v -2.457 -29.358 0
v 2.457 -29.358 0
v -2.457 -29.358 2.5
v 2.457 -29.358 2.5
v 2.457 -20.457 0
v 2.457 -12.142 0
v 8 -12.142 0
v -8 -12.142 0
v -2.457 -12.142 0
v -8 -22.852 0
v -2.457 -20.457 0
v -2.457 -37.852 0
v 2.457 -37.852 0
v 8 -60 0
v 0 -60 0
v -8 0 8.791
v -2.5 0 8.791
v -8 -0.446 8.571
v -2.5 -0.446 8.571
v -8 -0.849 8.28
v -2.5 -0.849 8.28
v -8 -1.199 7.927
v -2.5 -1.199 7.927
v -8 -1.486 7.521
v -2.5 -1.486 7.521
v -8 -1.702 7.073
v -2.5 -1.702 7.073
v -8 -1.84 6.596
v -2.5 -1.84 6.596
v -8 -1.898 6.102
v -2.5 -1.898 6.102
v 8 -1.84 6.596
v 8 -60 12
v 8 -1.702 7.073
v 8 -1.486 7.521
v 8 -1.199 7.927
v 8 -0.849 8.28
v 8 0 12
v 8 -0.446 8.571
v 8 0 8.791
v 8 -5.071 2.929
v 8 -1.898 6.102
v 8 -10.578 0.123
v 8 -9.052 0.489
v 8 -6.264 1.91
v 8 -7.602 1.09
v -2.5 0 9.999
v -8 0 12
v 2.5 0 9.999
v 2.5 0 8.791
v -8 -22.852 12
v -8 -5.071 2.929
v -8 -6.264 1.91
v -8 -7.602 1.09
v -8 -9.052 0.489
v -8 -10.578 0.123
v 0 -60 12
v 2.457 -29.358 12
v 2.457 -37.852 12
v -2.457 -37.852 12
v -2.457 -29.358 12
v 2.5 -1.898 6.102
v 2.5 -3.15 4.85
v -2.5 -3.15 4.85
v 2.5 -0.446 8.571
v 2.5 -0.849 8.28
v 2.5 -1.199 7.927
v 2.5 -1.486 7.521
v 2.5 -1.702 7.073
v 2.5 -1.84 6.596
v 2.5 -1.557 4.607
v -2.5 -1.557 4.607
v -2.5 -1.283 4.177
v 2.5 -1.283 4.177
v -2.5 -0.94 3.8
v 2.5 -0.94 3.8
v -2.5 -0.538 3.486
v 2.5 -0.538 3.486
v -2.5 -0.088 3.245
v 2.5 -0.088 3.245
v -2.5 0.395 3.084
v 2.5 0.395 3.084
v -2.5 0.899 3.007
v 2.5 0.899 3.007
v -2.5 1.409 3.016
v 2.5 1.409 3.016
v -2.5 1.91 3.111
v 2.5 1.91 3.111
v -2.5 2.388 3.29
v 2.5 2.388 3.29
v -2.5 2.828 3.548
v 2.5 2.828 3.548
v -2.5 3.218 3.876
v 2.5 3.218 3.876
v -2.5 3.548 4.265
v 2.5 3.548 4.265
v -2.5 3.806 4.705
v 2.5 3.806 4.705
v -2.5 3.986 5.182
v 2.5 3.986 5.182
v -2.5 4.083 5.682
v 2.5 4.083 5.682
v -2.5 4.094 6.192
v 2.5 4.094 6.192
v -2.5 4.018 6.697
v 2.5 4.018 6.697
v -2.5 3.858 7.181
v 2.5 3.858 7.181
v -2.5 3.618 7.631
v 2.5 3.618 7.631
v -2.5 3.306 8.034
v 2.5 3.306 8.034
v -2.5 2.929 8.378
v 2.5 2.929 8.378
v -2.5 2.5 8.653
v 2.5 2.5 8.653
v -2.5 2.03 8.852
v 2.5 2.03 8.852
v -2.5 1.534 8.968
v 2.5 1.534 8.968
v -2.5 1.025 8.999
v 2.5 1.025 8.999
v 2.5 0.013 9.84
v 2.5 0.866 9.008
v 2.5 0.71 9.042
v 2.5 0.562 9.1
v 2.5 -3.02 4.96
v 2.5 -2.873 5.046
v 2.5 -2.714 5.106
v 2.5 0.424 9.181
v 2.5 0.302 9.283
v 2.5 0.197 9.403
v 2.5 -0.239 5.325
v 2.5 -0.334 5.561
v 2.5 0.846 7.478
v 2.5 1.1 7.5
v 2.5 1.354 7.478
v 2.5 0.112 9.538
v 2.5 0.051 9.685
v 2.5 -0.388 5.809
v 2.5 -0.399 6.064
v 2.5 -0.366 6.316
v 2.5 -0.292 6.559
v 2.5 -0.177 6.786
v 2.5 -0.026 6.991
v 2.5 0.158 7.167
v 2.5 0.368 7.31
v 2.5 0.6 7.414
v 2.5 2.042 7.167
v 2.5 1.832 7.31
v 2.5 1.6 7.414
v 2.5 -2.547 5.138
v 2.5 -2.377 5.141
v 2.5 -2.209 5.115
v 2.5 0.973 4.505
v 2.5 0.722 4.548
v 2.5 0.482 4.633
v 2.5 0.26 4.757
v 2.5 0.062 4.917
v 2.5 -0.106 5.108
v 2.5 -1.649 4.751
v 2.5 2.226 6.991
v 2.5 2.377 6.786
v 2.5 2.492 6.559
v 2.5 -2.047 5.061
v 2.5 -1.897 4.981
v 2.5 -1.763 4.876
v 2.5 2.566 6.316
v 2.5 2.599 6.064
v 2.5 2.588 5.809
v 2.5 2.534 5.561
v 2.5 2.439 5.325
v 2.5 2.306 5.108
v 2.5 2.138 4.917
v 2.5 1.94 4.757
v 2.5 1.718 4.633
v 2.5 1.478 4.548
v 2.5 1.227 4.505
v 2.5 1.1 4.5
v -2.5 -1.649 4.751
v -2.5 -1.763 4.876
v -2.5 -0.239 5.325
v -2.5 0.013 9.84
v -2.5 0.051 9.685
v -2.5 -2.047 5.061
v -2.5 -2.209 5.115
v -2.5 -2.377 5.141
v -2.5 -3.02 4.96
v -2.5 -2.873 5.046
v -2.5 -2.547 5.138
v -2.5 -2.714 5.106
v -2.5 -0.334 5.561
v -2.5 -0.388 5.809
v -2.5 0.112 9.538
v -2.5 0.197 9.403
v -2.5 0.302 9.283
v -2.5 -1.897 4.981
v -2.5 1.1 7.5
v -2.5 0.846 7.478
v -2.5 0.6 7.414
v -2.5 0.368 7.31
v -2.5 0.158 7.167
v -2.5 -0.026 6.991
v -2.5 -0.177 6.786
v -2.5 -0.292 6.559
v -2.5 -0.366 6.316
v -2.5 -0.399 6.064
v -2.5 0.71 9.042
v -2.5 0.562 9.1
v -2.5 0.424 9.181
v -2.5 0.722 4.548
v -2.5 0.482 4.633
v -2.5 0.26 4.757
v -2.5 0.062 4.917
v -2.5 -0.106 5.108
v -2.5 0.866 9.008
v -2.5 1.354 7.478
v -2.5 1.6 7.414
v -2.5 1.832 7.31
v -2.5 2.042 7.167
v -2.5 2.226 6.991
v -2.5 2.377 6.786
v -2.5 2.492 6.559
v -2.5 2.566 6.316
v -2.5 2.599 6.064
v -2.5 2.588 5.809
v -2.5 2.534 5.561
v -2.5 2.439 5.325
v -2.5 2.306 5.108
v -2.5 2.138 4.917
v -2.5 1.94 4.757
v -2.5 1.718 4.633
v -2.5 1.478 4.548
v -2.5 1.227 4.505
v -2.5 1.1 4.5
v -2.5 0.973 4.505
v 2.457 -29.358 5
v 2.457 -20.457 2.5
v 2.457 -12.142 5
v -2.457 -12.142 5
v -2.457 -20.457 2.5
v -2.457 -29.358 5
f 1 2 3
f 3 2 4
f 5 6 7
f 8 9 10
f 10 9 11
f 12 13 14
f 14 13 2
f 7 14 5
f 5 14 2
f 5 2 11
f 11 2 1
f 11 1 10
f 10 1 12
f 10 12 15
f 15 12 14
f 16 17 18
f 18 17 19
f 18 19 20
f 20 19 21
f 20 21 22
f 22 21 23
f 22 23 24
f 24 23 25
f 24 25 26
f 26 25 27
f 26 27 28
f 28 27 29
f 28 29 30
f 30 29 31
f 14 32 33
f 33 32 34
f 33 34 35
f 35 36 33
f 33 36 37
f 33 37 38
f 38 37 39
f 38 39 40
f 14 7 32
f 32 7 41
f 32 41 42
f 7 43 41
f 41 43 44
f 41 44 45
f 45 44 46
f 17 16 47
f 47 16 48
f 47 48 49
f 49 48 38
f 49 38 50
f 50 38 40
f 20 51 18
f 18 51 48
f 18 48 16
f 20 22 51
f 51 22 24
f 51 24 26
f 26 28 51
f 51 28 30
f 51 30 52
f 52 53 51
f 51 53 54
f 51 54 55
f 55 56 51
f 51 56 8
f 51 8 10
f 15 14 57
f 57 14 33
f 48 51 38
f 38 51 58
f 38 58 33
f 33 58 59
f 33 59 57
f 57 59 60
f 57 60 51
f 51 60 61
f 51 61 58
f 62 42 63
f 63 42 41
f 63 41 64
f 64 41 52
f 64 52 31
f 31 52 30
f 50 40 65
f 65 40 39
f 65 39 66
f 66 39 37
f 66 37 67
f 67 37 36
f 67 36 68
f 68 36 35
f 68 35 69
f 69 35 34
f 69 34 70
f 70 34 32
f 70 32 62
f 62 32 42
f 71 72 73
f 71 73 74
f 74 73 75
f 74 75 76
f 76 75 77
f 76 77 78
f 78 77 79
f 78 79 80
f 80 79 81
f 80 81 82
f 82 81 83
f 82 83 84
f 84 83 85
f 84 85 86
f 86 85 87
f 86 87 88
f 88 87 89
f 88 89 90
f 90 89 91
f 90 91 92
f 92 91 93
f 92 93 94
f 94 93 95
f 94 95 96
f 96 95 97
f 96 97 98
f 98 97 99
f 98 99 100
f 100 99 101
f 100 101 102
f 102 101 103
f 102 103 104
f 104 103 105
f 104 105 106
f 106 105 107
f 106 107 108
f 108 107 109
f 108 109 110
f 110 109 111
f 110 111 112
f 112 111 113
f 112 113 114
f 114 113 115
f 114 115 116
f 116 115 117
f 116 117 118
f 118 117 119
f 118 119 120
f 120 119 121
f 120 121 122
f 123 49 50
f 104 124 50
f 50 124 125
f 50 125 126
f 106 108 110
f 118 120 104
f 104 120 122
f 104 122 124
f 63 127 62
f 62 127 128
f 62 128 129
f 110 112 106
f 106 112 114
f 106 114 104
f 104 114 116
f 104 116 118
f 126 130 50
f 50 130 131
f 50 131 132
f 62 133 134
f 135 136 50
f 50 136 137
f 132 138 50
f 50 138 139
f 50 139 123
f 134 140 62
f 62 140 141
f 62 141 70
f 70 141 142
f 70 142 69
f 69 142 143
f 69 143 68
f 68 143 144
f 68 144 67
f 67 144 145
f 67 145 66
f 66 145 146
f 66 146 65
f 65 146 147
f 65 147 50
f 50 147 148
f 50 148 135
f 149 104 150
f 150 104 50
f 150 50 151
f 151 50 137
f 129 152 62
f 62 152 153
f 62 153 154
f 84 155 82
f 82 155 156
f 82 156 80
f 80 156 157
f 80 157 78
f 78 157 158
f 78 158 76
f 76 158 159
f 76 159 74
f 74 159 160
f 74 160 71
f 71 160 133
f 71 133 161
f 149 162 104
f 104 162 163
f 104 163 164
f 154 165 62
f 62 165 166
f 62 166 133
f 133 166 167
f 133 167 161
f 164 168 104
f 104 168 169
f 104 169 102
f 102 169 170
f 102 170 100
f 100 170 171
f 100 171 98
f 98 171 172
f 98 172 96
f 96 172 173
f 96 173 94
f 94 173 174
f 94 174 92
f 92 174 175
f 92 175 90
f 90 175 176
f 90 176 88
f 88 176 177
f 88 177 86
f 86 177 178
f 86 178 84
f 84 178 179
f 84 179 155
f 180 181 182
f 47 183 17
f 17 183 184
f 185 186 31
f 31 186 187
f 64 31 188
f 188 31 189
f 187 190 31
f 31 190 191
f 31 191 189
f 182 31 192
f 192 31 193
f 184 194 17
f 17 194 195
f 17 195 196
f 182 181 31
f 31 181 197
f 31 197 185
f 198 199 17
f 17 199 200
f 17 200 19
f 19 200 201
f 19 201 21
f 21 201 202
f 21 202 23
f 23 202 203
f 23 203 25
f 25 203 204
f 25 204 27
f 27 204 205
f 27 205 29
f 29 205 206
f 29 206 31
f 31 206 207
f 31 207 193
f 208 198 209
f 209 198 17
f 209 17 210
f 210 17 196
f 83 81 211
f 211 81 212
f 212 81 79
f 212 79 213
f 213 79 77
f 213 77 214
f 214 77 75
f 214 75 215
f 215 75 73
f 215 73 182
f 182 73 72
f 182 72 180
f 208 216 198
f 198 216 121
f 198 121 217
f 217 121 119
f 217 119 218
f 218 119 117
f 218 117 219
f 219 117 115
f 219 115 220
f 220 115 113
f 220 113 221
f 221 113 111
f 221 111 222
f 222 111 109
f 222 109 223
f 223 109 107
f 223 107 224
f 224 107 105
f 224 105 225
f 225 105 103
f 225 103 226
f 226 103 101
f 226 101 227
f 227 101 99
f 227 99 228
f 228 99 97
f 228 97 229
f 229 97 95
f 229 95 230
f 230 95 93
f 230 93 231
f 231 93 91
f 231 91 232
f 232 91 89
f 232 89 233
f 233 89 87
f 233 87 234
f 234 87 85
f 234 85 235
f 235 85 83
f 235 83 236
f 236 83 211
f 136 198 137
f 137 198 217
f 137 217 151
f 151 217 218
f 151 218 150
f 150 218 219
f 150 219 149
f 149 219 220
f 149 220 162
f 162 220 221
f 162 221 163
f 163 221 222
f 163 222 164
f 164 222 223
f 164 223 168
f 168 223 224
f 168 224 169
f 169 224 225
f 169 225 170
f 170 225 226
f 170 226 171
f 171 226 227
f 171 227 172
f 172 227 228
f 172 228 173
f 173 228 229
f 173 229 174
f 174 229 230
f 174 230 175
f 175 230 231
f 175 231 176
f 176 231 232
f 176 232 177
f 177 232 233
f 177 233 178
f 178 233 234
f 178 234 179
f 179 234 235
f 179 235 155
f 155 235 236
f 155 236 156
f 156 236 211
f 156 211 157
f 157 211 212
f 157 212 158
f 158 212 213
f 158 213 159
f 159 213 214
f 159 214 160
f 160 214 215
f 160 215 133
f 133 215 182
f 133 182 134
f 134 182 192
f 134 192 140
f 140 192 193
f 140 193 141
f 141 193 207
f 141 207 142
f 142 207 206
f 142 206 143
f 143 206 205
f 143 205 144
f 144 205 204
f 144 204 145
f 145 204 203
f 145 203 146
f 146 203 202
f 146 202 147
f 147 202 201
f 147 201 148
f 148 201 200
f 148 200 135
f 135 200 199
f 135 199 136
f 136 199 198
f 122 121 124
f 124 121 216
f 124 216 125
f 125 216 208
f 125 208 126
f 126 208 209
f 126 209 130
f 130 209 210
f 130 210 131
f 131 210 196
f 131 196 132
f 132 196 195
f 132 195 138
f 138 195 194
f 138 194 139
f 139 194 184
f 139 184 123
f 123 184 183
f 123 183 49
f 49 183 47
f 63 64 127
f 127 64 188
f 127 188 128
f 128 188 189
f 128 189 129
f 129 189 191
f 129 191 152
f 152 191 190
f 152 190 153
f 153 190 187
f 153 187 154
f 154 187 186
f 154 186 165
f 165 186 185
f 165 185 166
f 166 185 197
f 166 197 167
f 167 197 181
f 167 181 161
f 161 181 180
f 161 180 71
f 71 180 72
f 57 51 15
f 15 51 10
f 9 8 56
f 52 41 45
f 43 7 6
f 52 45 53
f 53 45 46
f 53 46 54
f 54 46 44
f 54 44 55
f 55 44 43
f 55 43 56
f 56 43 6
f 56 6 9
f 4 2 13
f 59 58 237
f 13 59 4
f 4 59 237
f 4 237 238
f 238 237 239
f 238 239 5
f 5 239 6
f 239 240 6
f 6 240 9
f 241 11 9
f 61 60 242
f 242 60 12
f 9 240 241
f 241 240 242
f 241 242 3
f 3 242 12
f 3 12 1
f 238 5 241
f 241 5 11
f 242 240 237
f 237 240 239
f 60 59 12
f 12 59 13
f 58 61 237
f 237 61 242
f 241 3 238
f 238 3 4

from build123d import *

# Parameters (mm, degrees)
SKETCH1_W               = 16
SKETCH1_H               = 60
BOSS_EXTRUDE1_DEPTH     = 12
CUT_EXTRUDE1_DEPTH      = 62.708994482
CUT_EXTRUDE1_DEPTH_BACK = 62.708994482
CUT_EXTRUDE3_DEPTH      = 62.708994482
CUT_EXTRUDE3_DEPTH_BACK = 62.708994482
SKETCH4_R               = 3
SKETCH4_R_2             = 1.5
BOSS_EXTRUDE2_DEPTH     = 2.5
FILLET1_R               = 1
CUT_EXTRUDE4_DEPTH      = 62.708994482
FILLET2_R               = 10
SKETCH6_W               = 4.913298596
SKETCH6_H               = 8.315277322
SKETCH6_H_2             = 8.493571251
CUT_EXTRUDE5_DEPTH      = 5
SKETCH7_W               = 4.913298596
SKETCH7_H               = 8.493571251
CUT_EXTRUDE6_DEPTH      = 62.708994482
CUT_EXTRUDE7_REACH      = 44.091
SKETCH8_W               = 4.913298596
SKETCH8_H               = 2.5


with BuildPart() as part:
    # Sketch1 → Boss-Extrude1 (new body)
    with BuildSketch(Plane.XY):
        with Locations((0, -30)):
            Rectangle(SKETCH1_W, SKETCH1_H)
    extrude(amount=BOSS_EXTRUDE1_DEPTH)

    # Sketch2 → Cut-Extrude1 (cut, two sides: drawn at the far end of the back side and taken through both)
    with BuildSketch(Plane(origin=(0, 0, 0), x_dir=(0, 0, -1), z_dir=(1, 0, 0)).offset(-CUT_EXTRUDE1_DEPTH_BACK)):
        Polygon((-8, 0), (0, 0), (0, -8), align=None)
    extrude(amount=CUT_EXTRUDE1_DEPTH + CUT_EXTRUDE1_DEPTH_BACK, mode=Mode.SUBTRACT)

    # Sketch3 → Cut-Extrude3 (cut, two sides: drawn at the far end of the back side and taken through both)
    with BuildSketch(Plane(origin=(0, 0, 0), x_dir=(0, 0, -1), z_dir=(1, 0, 0)).offset(-CUT_EXTRUDE3_DEPTH_BACK)):
        with BuildLine():
            ThreePointArc((-3, 1.1), (-6.559834153, 4.04730143), (-8.791057147, 0))
            Line((-8.791057147, 0), (-7.019803903, 0))
            ThreePointArc((-7.019803903, 0), (-6.600122548, 2.474719218), (-4.5, 1.1))
            ThreePointArc((-4.5, 1.1), (-4.625280782, 0.499877452), (-4.980196097, 0))
            Line((-4.980196097, 0), (-3.208942853, 0))
            ThreePointArc((-3.208942853, 0), (-3.05269857, 0.540165847), (-3, 1.1))
        make_face()
        with BuildLine():
            Line((-7.019803903, 0), (-8.791057147, 0))
            ThreePointArc((-8.791057147, 0), (-6, -1.9), (-3.208942853, 0))
            Line((-3.208942853, 0), (-4.980196097, 0))
            ThreePointArc((-4.980196097, 0), (-6, -0.4), (-7.019803903, 0))
        make_face()
    extrude(amount=CUT_EXTRUDE3_DEPTH + CUT_EXTRUDE3_DEPTH_BACK, mode=Mode.SUBTRACT)

    # Sketch4 → Boss-Extrude2 (add, symmetric)
    with BuildSketch(Plane(origin=(0, 0, 0), x_dir=(0, 0, -1), z_dir=(1, 0, 0))):
        with Locations((-6, 1.1)):
            Circle(SKETCH4_R)
        with Locations((-6, 1.1)):
            Circle(SKETCH4_R_2, mode=Mode.SUBTRACT)
    extrude(amount=BOSS_EXTRUDE2_DEPTH, both=True)

    # Fillet1
    fillet1_edges = [part.edges().sort_by_distance(p)[0] for p in [
        (0, -1.898274836, 6.101725164),
        (0, 0, 8.791057147),
    ]]
    fillet(fillet1_edges, radius=FILLET1_R)

    # Sketch5 → Cut-Extrude4 (cut, through all)
    with BuildSketch(Plane(origin=(0, 0, 0), x_dir=(-1, 0, 0), z_dir=(0, 0, -1))):
        Polygon((0, -60), (8, -22.851648758), (8, -60), align=None)
    extrude(amount=-CUT_EXTRUDE4_DEPTH, mode=Mode.SUBTRACT)

    # Fillet2
    fillet2_edges = [part.edges().sort_by_distance(p)[0] for p in [
        (0, -8, 0),
    ]]
    fillet(fillet2_edges, radius=FILLET2_R)

    # Sketch6 → Cut-Extrude5 (cut)
    with BuildSketch(Plane(origin=(0, 0, 0), x_dir=(-1, 0, 0), z_dir=(0, 0, -1))):
        with Locations((0, -16.299774285)):
            Rectangle(SKETCH6_W, SKETCH6_H)
        with Locations((0, -33.604863133)):
            Rectangle(SKETCH6_W, SKETCH6_H_2)
    extrude(amount=-CUT_EXTRUDE5_DEPTH, mode=Mode.SUBTRACT)

    # Sketch7 → Cut-Extrude6 (cut, through all)
    with BuildSketch(Plane(origin=(0, 0, 0), x_dir=(-1, 0, 0), z_dir=(0, 0, -1))):
        with Locations((0, -33.604863133)):
            Rectangle(SKETCH7_W, SKETCH7_H)
    extrude(amount=-CUT_EXTRUDE6_DEPTH, mode=Mode.SUBTRACT)

    # Sketch8 → Cut-Extrude7 (cut, up to next)
    with BuildSketch(Plane(origin=(0, -20.457412946, 0), x_dir=(1, 0, 0), z_dir=(0, 1, 0)), mode=Mode.PRIVATE) as cut_extrude7_sk1:
        with Locations((0, -3.75)):
            Rectangle(SKETCH8_W, SKETCH8_H)
    cut_extrude7_tool1 = extrude(cut_extrude7_sk1.sketch, amount=-CUT_EXTRUDE7_REACH, mode=Mode.PRIVATE) & part.part
    add(cut_extrude7_tool1.solids().sort_by_distance((0, -20.457413, 3.75))[0], mode=Mode.SUBTRACT)


solid = part.part
